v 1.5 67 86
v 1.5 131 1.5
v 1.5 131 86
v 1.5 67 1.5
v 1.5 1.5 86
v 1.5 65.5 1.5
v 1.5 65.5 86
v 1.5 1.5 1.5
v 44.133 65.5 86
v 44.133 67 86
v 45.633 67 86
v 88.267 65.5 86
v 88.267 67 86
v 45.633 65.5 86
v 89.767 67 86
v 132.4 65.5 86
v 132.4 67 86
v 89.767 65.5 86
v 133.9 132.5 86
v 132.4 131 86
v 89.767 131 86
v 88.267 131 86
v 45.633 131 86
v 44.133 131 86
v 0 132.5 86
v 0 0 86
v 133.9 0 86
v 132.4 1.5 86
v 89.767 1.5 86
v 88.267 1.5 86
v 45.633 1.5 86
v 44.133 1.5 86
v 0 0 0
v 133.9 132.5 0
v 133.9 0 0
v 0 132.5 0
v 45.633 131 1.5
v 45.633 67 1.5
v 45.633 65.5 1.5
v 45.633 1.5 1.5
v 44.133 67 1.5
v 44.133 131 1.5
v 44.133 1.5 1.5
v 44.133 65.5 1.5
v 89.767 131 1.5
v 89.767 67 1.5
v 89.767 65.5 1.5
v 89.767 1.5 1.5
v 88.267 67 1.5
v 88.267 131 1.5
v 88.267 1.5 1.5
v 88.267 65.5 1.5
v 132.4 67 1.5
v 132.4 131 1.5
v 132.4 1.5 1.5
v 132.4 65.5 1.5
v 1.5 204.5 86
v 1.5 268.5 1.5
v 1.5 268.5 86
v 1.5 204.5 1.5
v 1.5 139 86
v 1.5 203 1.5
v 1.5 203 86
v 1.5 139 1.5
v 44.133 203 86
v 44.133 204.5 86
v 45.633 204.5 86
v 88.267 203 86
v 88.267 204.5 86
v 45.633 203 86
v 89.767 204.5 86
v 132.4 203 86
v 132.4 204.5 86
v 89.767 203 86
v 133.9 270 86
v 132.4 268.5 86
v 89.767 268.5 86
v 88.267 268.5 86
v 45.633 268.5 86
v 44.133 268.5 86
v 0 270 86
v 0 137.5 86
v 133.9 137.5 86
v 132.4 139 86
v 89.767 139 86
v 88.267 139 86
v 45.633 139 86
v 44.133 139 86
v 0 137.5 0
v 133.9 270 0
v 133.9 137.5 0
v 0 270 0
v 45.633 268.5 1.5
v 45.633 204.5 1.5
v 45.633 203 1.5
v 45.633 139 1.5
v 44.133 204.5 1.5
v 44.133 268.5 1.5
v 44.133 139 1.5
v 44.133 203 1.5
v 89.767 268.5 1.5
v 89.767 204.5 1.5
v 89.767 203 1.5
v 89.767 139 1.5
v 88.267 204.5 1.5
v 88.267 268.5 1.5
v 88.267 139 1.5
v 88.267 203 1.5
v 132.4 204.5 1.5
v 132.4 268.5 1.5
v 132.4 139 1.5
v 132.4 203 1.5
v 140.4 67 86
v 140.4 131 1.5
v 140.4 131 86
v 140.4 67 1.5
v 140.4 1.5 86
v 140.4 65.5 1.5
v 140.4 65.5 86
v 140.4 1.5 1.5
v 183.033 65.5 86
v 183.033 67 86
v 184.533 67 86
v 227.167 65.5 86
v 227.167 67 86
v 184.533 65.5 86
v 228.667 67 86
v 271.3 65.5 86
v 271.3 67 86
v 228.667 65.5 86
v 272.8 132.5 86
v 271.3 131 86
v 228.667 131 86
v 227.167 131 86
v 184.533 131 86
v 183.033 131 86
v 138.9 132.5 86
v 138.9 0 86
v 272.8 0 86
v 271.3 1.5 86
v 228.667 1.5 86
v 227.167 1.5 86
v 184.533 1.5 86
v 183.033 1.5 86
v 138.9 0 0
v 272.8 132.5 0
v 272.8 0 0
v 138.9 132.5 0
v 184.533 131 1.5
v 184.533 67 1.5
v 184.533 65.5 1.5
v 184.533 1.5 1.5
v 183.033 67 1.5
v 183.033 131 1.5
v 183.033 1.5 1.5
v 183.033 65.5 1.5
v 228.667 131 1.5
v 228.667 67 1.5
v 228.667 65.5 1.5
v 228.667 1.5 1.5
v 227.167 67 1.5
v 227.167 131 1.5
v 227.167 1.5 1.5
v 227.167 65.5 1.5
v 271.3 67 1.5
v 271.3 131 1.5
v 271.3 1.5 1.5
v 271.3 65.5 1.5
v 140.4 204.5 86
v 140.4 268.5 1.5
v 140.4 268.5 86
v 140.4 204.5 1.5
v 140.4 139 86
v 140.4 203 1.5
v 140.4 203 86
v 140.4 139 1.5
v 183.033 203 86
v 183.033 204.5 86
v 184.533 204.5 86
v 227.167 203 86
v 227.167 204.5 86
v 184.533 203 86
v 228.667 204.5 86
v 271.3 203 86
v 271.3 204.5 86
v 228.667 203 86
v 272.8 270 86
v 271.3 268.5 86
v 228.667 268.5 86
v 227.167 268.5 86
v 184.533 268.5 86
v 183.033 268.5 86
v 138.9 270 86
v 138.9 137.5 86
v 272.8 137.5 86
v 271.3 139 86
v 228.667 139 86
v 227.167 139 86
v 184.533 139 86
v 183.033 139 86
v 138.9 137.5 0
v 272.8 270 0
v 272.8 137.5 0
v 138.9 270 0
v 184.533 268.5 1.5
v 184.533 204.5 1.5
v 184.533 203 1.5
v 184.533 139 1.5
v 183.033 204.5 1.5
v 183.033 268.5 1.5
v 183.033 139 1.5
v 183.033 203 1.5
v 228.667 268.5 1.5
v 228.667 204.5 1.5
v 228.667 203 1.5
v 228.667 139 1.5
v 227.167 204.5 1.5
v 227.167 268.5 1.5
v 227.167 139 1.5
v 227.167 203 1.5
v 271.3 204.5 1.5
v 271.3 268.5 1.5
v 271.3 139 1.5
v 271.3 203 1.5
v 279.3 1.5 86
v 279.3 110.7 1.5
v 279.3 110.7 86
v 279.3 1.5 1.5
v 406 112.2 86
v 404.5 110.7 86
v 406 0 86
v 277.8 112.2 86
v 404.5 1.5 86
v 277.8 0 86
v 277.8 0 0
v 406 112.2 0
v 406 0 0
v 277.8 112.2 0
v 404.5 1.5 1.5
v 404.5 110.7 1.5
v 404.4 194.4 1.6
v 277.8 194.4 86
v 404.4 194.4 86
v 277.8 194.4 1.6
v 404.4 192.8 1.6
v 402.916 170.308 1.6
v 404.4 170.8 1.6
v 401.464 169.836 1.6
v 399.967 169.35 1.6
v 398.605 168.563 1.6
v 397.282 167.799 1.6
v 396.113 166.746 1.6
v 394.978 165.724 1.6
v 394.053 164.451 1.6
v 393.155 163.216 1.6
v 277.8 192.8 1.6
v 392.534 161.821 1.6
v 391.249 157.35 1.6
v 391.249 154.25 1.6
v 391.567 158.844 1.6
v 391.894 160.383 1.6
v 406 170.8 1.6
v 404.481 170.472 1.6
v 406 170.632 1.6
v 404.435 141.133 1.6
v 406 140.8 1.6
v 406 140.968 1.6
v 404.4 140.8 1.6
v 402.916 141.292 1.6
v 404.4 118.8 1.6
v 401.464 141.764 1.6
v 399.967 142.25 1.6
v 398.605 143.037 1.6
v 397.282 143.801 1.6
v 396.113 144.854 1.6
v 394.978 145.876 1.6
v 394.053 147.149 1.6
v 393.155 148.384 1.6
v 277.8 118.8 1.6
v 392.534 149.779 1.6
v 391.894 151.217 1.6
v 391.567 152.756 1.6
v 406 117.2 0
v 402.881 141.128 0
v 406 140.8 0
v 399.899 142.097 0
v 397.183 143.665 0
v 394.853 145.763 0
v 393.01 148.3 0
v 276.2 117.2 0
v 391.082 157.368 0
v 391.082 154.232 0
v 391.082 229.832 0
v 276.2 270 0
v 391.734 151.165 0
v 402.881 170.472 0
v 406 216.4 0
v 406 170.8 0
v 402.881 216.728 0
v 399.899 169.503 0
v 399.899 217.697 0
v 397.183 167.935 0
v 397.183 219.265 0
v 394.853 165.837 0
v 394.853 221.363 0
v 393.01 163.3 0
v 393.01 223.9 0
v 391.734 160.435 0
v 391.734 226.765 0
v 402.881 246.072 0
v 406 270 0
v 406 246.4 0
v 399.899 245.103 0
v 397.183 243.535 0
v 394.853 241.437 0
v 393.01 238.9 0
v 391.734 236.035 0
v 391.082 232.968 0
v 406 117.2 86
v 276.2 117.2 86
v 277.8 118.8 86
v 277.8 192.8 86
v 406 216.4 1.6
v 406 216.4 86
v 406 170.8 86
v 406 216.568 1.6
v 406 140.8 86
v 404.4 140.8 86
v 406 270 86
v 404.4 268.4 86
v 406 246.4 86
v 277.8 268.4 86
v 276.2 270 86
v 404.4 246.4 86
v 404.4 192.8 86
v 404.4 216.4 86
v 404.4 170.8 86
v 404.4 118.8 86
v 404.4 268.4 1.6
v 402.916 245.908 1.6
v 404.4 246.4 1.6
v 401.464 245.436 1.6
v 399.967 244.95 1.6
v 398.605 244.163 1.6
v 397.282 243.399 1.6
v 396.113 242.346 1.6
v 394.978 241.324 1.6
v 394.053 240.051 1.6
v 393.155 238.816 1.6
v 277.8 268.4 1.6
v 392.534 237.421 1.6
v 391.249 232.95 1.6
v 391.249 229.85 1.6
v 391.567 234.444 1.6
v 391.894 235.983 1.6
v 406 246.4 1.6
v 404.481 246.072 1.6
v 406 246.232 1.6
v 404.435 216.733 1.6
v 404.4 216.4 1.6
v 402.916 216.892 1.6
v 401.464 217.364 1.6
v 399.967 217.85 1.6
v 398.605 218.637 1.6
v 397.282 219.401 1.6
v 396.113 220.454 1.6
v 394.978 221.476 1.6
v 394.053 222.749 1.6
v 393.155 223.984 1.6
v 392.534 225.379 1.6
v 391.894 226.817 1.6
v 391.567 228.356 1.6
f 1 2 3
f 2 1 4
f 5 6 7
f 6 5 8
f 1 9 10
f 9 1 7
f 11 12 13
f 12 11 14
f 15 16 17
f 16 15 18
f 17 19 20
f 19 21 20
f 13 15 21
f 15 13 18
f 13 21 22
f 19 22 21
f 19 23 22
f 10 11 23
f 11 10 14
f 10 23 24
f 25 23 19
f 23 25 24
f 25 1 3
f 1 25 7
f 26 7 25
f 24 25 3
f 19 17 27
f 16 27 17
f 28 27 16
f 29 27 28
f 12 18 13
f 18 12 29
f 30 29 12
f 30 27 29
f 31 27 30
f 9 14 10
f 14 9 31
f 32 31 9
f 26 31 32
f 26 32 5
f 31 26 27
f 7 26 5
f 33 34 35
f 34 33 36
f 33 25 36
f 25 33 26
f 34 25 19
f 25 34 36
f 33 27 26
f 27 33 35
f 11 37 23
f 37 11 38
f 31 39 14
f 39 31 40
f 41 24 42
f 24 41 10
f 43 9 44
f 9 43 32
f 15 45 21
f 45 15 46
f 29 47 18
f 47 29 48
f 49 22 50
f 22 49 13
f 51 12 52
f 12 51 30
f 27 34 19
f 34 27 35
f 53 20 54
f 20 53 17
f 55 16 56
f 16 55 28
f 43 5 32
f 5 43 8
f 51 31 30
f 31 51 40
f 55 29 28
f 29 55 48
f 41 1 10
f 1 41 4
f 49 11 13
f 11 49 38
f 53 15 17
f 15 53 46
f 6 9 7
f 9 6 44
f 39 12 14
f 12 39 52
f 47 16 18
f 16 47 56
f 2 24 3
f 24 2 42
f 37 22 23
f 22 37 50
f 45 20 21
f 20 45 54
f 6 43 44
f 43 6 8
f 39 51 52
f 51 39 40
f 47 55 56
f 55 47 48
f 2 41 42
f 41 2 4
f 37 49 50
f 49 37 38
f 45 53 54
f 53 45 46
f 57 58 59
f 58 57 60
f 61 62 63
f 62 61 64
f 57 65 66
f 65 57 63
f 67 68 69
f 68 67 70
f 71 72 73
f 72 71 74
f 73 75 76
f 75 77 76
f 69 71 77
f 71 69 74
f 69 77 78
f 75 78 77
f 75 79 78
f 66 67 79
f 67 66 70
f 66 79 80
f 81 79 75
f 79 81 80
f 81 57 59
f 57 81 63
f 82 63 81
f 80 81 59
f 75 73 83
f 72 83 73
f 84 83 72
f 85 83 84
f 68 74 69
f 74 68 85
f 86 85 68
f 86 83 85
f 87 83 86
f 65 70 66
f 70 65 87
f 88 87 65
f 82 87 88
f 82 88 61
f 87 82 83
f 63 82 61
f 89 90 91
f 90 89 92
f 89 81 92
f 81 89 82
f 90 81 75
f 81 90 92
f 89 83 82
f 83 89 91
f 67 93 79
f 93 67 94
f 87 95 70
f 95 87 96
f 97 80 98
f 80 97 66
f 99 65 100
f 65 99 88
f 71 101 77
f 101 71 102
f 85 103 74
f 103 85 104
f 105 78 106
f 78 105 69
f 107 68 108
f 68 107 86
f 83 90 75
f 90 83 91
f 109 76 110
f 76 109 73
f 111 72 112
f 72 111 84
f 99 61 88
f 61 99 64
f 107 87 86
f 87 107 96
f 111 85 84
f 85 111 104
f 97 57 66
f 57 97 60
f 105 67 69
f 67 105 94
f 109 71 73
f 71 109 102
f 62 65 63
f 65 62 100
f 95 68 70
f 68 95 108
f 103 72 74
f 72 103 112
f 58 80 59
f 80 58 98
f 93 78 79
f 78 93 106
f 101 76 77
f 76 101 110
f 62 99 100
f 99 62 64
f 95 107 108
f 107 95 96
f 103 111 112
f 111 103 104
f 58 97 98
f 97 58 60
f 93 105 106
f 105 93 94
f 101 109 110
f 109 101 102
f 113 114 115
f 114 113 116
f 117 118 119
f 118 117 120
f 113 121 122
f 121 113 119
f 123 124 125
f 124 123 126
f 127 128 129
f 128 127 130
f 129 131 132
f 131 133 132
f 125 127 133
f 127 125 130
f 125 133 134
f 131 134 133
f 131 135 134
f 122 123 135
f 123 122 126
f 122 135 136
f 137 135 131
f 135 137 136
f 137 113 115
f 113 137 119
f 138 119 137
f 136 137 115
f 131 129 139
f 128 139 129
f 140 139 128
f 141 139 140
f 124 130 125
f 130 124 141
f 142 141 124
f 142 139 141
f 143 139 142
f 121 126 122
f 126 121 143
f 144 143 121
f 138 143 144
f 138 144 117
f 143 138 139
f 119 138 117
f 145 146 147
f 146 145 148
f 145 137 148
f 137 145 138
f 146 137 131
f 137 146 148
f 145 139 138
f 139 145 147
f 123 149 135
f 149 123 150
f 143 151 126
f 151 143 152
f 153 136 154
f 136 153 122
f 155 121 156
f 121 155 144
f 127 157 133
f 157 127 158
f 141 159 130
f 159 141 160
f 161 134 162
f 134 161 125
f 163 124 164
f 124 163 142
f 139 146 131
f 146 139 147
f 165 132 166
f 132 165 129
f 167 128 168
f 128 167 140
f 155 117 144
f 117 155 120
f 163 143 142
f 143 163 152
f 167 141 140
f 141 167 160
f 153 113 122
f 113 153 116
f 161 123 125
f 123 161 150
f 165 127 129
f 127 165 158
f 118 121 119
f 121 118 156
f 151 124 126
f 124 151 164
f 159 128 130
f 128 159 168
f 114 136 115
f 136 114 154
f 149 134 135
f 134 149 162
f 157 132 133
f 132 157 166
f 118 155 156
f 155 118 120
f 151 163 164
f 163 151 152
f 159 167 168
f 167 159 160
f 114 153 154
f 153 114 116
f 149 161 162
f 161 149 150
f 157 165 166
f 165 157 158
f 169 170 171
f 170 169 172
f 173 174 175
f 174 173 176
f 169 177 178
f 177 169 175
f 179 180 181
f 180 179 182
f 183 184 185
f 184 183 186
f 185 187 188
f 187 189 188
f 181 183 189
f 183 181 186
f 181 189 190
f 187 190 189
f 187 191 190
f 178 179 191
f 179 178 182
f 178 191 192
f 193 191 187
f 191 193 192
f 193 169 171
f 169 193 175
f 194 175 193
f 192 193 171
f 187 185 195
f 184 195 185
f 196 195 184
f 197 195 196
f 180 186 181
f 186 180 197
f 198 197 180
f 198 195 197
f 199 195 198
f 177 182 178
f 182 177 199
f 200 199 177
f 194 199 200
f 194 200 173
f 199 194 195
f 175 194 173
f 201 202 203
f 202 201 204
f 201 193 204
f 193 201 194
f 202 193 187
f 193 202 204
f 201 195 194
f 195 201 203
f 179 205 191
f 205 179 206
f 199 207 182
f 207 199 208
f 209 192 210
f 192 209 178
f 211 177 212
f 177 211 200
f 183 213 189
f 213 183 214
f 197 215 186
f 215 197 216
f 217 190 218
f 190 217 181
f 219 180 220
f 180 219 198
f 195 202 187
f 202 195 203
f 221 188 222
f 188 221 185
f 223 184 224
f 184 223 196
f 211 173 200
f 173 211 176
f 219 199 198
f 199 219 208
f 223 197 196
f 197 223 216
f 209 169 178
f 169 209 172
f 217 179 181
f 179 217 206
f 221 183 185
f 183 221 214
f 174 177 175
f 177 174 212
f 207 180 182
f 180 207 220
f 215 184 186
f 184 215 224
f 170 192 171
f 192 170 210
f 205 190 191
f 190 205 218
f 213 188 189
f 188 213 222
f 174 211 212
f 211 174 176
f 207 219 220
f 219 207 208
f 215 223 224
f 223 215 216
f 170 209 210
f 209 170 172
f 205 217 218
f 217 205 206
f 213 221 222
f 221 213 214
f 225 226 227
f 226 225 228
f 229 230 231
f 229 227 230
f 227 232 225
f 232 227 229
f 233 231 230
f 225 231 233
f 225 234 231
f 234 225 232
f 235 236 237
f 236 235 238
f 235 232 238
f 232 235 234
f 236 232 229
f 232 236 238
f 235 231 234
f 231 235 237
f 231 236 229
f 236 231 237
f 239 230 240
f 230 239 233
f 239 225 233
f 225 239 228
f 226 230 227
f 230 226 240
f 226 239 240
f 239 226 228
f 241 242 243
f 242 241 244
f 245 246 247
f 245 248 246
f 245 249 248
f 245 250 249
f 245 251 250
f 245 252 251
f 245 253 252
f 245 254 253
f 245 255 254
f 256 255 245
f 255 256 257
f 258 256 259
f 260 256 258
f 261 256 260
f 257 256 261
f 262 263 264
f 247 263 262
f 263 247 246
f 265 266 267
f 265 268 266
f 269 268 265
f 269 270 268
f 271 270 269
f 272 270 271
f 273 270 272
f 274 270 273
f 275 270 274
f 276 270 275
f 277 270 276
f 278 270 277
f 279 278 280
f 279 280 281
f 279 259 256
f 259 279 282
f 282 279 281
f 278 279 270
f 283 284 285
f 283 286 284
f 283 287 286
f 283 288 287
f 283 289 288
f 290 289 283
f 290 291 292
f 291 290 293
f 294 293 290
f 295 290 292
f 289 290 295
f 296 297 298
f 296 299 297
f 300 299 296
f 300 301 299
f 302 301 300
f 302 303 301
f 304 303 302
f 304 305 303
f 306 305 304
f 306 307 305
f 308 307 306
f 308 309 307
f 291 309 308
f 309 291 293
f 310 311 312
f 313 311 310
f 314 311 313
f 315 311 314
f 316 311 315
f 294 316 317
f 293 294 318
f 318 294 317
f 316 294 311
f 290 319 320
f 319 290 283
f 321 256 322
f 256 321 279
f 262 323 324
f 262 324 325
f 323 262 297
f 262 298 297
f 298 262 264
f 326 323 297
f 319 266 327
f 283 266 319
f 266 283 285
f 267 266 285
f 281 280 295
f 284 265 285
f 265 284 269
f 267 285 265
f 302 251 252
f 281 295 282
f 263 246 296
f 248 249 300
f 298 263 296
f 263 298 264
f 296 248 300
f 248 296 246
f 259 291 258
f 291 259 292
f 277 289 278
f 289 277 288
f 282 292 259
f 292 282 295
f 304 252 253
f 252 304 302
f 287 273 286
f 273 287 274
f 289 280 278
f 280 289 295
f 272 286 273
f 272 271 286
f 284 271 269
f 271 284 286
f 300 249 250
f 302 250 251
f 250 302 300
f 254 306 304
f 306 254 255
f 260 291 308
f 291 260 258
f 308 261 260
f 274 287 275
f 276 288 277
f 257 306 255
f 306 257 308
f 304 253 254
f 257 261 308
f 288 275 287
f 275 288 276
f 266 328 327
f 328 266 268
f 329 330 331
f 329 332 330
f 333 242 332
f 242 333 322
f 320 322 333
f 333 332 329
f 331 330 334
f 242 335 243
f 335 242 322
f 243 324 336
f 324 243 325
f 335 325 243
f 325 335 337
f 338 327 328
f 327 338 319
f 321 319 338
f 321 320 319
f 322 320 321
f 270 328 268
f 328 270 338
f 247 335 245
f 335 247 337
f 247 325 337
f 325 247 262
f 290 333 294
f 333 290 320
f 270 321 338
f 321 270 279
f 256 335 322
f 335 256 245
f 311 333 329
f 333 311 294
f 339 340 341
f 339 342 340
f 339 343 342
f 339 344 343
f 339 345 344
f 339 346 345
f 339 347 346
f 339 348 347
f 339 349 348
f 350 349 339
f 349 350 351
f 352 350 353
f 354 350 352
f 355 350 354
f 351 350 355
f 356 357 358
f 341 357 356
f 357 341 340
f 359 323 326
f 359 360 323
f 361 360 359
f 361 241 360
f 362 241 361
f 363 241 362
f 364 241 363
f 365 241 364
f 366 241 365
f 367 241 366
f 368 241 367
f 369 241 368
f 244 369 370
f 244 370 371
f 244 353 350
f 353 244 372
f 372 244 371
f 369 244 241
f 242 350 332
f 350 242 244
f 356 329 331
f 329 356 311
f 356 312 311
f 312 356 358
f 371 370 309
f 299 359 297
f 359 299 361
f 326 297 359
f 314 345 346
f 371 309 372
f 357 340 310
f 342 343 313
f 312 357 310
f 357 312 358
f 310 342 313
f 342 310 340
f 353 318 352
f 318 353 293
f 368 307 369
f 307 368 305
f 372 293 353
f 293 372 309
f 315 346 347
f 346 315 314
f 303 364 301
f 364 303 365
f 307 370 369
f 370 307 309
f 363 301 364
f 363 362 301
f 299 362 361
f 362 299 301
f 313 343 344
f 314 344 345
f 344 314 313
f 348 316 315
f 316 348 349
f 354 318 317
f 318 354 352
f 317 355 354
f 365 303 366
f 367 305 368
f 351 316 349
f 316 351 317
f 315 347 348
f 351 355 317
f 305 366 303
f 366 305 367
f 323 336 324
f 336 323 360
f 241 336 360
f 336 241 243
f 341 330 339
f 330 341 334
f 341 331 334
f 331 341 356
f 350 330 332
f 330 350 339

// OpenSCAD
// file: utils.scad
wall = 1.5;

function Sum(elements = [ [ 1, 2, 3 ], 5 ]) =
    let(sum = function(numbers, i = 0, result = 0) i == len(numbers)
                  ? result
                  : sum(numbers, i + 1, result + numbers[i]),
        max_element_length = max(
            [for (element = elements) is_list(element) ? len(element)
                                                       : 0])) max_element_length
        ? [for (i = [0:max_element_length - 1]) sum(
              [for (element = elements) is_list(element)
                      ? (element[i] ? element[i] : 0)
                      : element])]
        : sum(elements);

function Minus(list_or_number = [ 1, 2, 3 ]) =
    is_list(list_or_number)
        ? [for (list_element = list_or_number) Minus(list_element)]
        : -list_or_number;

module Open_Box(size = [ 1, 1, 1 ], x = 1, y = 1, t = wall) {
  cube([ size.x, size.y, t ]);
  dx = (size.x - t) / x;
  dy = (size.y - t) / y;
  for (i = [0:x]) {
    translate([ i * dx, 0, 0 ]) { cube([ t, size.y, size.z ]); }
  }
  for (i = [0:y]) {
    translate([ 0, i * dy, 0 ]) { cube([ size.x, t, size.z ]); }
  }
}

module Box_Wall_Part(size = [ 1, 1, 1 ], rounded = false) {
  if (rounded) {
    cube_height_or_width = size.z - size.x;
    cube([
      cube_height_or_width < 0 ? -cube_height_or_width : size.x,
      size.y,
      cube_height_or_width > 0 ? cube_height_or_width : size.z
    ]);

    cylinder_radius = cube_height_or_width > 0 ? size.x : size.z;

    translate([
      cube_height_or_width < 0 ? -cube_height_or_width : 0,
      0,
      cube_height_or_width > 0 ? cube_height_or_width : 0
    ]) {
      intersection() {
        rotate([ 90, 0, 0 ]) cylinder(
            h = size.x,
            r1 = cylinder_radius,
            r2 = cylinder_radius,
            center = true);
        cube([ size.x, size.y, size.z ]);
      }
    }
  } else {
    cube(size);
  }
}

module Box_Wall(size = [ 1, 1, 1 ], hole_diameter = 0, rounded = 0) {
  module _Box_Wall_Part() {
    Box_Wall_Part(
        size = [ (size.x - hole_diameter) / 2, size.y, size.z ],
        rounded = rounded);
  }
  if (hole_diameter > 0) {
    _Box_Wall_Part();
    translate([ size.x, 0, 0 ]) mirror([ 1, 0, 0 ]) _Box_Wall_Part();
  } else {
    cube(size);
  }
}

module
Box(size = [ 1, 1, 1 ],
    wall = wall,
    bottom_hole_diameter = 0,
    top_hole_diameter = 0,
    left_hole_diameter = 0,
    right_hole_diameter = 0,
    rounded = false) {
  base = [ size.x, size.y, wall ];

  difference() {
    cube(base);
    translate([ size.x / 2, 0, 0 ]) { sphere(d = bottom_hole_diameter); }
    translate([ size.x / 2, size.y, 0 ]) { sphere(d = top_hole_diameter); }
    translate([ 0, size.y / 2, 0 ]) { sphere(d = left_hole_diameter); }
    translate([ size.x, size.y / 2, 0 ]) { sphere(d = right_hole_diameter); }
  }

  Box_Wall(
      size = [ size.x, wall, size.z ],
      hole_diameter = bottom_hole_diameter,
      rounded = rounded);

  translate([ 0, size.y, 0 ]) {
    Box_Wall(
        size = [ size.x, wall, size.z ],
        hole_diameter = top_hole_diameter,
        rounded = rounded);
  }

  translate([ wall, 0, 0 ]) {
    rotate(a = 90) {
      Box_Wall(
          size = [ size.y, wall, size.z ],
          hole_diameter = left_hole_diameter,
          rounded = rounded);
    }
  }

  translate([ size.x, 0, 0 ]) {
    rotate(a = 90) {
      Box_Wall(
          size = [ size.y, wall, size.z ],
          hole_diameter = right_hole_diameter,
          rounded = rounded);
    }
  }
}

module Multi_Box(
    size = [ 1, 1, 1 ],
    wall = wall,
    bottom_hole_diameter = 0,
    top_hole_diameter = 0,
    left_hole_diameter = 0,
    right_hole_diameter = 0,
    rounded = false,
    x = 2,
    y = 1) {
  for (i = [0:x - 1]) {
    for (j = [0:y - 1]) {
      translate([ i * (size.x - wall), j * (size.y - wall), 0 ]) {
        Box(size = size,
            wall = wall,
            bottom_hole_diameter = bottom_hole_diameter,
            top_hole_diameter = top_hole_diameter,
            left_hole_diameter = left_hole_diameter,
            right_hole_diameter = right_hole_diameter,
            rounded = rounded);
      }
    }
  }
}
// main file
include <utils.scad>

t = 1.6;
box_padding = 2;
cards_padding = 2;
gap = 5;

box = [ 398, 267, 88 ];
card = [ 72, 123 ];

insert = [ box.x - box_padding, box.y - box_padding, box.z - box_padding ];
cards = [ card.y + cards_padding + 2 * t, insert.y, insert.z ];
units = [ insert.x - cards.x, insert.y, insert.z ];
nation = [ units.x / 2, units.y / 4, units.z ];
double_nation = [ units.x / 2, units.y / 2, units.z ];
cards_holder = [
  card.x + cards_padding + 2 * t,
  card.y + cards_padding + 2 * t,
  insert.z
];
corner_width = cards_holder.x * 0.25;
tokens = [ cards.x, insert.y - 2 * cards_holder.x + t, insert.z ];

for (i = [0:1]) {
  for (j = [0:1]) {
    translate([ i * (double_nation.x + gap), j * (double_nation.y + gap), 0 ])
        Open_Box(double_nation, x = 3, y = 2);
  }
}

translate([ 2 * (double_nation.x + gap), 0, 0 ]) {
  Open_Box(tokens);

  translate([ cards_holder.y, tokens.y + gap, 0 ]) rotate([ 0, 0, 90 ])
      Multi_Box(
          size = cards_holder,
          wall = t,
          x = 2,
          y = 1,
          bottom_hole_diameter = 30,
          rounded = false);
}
